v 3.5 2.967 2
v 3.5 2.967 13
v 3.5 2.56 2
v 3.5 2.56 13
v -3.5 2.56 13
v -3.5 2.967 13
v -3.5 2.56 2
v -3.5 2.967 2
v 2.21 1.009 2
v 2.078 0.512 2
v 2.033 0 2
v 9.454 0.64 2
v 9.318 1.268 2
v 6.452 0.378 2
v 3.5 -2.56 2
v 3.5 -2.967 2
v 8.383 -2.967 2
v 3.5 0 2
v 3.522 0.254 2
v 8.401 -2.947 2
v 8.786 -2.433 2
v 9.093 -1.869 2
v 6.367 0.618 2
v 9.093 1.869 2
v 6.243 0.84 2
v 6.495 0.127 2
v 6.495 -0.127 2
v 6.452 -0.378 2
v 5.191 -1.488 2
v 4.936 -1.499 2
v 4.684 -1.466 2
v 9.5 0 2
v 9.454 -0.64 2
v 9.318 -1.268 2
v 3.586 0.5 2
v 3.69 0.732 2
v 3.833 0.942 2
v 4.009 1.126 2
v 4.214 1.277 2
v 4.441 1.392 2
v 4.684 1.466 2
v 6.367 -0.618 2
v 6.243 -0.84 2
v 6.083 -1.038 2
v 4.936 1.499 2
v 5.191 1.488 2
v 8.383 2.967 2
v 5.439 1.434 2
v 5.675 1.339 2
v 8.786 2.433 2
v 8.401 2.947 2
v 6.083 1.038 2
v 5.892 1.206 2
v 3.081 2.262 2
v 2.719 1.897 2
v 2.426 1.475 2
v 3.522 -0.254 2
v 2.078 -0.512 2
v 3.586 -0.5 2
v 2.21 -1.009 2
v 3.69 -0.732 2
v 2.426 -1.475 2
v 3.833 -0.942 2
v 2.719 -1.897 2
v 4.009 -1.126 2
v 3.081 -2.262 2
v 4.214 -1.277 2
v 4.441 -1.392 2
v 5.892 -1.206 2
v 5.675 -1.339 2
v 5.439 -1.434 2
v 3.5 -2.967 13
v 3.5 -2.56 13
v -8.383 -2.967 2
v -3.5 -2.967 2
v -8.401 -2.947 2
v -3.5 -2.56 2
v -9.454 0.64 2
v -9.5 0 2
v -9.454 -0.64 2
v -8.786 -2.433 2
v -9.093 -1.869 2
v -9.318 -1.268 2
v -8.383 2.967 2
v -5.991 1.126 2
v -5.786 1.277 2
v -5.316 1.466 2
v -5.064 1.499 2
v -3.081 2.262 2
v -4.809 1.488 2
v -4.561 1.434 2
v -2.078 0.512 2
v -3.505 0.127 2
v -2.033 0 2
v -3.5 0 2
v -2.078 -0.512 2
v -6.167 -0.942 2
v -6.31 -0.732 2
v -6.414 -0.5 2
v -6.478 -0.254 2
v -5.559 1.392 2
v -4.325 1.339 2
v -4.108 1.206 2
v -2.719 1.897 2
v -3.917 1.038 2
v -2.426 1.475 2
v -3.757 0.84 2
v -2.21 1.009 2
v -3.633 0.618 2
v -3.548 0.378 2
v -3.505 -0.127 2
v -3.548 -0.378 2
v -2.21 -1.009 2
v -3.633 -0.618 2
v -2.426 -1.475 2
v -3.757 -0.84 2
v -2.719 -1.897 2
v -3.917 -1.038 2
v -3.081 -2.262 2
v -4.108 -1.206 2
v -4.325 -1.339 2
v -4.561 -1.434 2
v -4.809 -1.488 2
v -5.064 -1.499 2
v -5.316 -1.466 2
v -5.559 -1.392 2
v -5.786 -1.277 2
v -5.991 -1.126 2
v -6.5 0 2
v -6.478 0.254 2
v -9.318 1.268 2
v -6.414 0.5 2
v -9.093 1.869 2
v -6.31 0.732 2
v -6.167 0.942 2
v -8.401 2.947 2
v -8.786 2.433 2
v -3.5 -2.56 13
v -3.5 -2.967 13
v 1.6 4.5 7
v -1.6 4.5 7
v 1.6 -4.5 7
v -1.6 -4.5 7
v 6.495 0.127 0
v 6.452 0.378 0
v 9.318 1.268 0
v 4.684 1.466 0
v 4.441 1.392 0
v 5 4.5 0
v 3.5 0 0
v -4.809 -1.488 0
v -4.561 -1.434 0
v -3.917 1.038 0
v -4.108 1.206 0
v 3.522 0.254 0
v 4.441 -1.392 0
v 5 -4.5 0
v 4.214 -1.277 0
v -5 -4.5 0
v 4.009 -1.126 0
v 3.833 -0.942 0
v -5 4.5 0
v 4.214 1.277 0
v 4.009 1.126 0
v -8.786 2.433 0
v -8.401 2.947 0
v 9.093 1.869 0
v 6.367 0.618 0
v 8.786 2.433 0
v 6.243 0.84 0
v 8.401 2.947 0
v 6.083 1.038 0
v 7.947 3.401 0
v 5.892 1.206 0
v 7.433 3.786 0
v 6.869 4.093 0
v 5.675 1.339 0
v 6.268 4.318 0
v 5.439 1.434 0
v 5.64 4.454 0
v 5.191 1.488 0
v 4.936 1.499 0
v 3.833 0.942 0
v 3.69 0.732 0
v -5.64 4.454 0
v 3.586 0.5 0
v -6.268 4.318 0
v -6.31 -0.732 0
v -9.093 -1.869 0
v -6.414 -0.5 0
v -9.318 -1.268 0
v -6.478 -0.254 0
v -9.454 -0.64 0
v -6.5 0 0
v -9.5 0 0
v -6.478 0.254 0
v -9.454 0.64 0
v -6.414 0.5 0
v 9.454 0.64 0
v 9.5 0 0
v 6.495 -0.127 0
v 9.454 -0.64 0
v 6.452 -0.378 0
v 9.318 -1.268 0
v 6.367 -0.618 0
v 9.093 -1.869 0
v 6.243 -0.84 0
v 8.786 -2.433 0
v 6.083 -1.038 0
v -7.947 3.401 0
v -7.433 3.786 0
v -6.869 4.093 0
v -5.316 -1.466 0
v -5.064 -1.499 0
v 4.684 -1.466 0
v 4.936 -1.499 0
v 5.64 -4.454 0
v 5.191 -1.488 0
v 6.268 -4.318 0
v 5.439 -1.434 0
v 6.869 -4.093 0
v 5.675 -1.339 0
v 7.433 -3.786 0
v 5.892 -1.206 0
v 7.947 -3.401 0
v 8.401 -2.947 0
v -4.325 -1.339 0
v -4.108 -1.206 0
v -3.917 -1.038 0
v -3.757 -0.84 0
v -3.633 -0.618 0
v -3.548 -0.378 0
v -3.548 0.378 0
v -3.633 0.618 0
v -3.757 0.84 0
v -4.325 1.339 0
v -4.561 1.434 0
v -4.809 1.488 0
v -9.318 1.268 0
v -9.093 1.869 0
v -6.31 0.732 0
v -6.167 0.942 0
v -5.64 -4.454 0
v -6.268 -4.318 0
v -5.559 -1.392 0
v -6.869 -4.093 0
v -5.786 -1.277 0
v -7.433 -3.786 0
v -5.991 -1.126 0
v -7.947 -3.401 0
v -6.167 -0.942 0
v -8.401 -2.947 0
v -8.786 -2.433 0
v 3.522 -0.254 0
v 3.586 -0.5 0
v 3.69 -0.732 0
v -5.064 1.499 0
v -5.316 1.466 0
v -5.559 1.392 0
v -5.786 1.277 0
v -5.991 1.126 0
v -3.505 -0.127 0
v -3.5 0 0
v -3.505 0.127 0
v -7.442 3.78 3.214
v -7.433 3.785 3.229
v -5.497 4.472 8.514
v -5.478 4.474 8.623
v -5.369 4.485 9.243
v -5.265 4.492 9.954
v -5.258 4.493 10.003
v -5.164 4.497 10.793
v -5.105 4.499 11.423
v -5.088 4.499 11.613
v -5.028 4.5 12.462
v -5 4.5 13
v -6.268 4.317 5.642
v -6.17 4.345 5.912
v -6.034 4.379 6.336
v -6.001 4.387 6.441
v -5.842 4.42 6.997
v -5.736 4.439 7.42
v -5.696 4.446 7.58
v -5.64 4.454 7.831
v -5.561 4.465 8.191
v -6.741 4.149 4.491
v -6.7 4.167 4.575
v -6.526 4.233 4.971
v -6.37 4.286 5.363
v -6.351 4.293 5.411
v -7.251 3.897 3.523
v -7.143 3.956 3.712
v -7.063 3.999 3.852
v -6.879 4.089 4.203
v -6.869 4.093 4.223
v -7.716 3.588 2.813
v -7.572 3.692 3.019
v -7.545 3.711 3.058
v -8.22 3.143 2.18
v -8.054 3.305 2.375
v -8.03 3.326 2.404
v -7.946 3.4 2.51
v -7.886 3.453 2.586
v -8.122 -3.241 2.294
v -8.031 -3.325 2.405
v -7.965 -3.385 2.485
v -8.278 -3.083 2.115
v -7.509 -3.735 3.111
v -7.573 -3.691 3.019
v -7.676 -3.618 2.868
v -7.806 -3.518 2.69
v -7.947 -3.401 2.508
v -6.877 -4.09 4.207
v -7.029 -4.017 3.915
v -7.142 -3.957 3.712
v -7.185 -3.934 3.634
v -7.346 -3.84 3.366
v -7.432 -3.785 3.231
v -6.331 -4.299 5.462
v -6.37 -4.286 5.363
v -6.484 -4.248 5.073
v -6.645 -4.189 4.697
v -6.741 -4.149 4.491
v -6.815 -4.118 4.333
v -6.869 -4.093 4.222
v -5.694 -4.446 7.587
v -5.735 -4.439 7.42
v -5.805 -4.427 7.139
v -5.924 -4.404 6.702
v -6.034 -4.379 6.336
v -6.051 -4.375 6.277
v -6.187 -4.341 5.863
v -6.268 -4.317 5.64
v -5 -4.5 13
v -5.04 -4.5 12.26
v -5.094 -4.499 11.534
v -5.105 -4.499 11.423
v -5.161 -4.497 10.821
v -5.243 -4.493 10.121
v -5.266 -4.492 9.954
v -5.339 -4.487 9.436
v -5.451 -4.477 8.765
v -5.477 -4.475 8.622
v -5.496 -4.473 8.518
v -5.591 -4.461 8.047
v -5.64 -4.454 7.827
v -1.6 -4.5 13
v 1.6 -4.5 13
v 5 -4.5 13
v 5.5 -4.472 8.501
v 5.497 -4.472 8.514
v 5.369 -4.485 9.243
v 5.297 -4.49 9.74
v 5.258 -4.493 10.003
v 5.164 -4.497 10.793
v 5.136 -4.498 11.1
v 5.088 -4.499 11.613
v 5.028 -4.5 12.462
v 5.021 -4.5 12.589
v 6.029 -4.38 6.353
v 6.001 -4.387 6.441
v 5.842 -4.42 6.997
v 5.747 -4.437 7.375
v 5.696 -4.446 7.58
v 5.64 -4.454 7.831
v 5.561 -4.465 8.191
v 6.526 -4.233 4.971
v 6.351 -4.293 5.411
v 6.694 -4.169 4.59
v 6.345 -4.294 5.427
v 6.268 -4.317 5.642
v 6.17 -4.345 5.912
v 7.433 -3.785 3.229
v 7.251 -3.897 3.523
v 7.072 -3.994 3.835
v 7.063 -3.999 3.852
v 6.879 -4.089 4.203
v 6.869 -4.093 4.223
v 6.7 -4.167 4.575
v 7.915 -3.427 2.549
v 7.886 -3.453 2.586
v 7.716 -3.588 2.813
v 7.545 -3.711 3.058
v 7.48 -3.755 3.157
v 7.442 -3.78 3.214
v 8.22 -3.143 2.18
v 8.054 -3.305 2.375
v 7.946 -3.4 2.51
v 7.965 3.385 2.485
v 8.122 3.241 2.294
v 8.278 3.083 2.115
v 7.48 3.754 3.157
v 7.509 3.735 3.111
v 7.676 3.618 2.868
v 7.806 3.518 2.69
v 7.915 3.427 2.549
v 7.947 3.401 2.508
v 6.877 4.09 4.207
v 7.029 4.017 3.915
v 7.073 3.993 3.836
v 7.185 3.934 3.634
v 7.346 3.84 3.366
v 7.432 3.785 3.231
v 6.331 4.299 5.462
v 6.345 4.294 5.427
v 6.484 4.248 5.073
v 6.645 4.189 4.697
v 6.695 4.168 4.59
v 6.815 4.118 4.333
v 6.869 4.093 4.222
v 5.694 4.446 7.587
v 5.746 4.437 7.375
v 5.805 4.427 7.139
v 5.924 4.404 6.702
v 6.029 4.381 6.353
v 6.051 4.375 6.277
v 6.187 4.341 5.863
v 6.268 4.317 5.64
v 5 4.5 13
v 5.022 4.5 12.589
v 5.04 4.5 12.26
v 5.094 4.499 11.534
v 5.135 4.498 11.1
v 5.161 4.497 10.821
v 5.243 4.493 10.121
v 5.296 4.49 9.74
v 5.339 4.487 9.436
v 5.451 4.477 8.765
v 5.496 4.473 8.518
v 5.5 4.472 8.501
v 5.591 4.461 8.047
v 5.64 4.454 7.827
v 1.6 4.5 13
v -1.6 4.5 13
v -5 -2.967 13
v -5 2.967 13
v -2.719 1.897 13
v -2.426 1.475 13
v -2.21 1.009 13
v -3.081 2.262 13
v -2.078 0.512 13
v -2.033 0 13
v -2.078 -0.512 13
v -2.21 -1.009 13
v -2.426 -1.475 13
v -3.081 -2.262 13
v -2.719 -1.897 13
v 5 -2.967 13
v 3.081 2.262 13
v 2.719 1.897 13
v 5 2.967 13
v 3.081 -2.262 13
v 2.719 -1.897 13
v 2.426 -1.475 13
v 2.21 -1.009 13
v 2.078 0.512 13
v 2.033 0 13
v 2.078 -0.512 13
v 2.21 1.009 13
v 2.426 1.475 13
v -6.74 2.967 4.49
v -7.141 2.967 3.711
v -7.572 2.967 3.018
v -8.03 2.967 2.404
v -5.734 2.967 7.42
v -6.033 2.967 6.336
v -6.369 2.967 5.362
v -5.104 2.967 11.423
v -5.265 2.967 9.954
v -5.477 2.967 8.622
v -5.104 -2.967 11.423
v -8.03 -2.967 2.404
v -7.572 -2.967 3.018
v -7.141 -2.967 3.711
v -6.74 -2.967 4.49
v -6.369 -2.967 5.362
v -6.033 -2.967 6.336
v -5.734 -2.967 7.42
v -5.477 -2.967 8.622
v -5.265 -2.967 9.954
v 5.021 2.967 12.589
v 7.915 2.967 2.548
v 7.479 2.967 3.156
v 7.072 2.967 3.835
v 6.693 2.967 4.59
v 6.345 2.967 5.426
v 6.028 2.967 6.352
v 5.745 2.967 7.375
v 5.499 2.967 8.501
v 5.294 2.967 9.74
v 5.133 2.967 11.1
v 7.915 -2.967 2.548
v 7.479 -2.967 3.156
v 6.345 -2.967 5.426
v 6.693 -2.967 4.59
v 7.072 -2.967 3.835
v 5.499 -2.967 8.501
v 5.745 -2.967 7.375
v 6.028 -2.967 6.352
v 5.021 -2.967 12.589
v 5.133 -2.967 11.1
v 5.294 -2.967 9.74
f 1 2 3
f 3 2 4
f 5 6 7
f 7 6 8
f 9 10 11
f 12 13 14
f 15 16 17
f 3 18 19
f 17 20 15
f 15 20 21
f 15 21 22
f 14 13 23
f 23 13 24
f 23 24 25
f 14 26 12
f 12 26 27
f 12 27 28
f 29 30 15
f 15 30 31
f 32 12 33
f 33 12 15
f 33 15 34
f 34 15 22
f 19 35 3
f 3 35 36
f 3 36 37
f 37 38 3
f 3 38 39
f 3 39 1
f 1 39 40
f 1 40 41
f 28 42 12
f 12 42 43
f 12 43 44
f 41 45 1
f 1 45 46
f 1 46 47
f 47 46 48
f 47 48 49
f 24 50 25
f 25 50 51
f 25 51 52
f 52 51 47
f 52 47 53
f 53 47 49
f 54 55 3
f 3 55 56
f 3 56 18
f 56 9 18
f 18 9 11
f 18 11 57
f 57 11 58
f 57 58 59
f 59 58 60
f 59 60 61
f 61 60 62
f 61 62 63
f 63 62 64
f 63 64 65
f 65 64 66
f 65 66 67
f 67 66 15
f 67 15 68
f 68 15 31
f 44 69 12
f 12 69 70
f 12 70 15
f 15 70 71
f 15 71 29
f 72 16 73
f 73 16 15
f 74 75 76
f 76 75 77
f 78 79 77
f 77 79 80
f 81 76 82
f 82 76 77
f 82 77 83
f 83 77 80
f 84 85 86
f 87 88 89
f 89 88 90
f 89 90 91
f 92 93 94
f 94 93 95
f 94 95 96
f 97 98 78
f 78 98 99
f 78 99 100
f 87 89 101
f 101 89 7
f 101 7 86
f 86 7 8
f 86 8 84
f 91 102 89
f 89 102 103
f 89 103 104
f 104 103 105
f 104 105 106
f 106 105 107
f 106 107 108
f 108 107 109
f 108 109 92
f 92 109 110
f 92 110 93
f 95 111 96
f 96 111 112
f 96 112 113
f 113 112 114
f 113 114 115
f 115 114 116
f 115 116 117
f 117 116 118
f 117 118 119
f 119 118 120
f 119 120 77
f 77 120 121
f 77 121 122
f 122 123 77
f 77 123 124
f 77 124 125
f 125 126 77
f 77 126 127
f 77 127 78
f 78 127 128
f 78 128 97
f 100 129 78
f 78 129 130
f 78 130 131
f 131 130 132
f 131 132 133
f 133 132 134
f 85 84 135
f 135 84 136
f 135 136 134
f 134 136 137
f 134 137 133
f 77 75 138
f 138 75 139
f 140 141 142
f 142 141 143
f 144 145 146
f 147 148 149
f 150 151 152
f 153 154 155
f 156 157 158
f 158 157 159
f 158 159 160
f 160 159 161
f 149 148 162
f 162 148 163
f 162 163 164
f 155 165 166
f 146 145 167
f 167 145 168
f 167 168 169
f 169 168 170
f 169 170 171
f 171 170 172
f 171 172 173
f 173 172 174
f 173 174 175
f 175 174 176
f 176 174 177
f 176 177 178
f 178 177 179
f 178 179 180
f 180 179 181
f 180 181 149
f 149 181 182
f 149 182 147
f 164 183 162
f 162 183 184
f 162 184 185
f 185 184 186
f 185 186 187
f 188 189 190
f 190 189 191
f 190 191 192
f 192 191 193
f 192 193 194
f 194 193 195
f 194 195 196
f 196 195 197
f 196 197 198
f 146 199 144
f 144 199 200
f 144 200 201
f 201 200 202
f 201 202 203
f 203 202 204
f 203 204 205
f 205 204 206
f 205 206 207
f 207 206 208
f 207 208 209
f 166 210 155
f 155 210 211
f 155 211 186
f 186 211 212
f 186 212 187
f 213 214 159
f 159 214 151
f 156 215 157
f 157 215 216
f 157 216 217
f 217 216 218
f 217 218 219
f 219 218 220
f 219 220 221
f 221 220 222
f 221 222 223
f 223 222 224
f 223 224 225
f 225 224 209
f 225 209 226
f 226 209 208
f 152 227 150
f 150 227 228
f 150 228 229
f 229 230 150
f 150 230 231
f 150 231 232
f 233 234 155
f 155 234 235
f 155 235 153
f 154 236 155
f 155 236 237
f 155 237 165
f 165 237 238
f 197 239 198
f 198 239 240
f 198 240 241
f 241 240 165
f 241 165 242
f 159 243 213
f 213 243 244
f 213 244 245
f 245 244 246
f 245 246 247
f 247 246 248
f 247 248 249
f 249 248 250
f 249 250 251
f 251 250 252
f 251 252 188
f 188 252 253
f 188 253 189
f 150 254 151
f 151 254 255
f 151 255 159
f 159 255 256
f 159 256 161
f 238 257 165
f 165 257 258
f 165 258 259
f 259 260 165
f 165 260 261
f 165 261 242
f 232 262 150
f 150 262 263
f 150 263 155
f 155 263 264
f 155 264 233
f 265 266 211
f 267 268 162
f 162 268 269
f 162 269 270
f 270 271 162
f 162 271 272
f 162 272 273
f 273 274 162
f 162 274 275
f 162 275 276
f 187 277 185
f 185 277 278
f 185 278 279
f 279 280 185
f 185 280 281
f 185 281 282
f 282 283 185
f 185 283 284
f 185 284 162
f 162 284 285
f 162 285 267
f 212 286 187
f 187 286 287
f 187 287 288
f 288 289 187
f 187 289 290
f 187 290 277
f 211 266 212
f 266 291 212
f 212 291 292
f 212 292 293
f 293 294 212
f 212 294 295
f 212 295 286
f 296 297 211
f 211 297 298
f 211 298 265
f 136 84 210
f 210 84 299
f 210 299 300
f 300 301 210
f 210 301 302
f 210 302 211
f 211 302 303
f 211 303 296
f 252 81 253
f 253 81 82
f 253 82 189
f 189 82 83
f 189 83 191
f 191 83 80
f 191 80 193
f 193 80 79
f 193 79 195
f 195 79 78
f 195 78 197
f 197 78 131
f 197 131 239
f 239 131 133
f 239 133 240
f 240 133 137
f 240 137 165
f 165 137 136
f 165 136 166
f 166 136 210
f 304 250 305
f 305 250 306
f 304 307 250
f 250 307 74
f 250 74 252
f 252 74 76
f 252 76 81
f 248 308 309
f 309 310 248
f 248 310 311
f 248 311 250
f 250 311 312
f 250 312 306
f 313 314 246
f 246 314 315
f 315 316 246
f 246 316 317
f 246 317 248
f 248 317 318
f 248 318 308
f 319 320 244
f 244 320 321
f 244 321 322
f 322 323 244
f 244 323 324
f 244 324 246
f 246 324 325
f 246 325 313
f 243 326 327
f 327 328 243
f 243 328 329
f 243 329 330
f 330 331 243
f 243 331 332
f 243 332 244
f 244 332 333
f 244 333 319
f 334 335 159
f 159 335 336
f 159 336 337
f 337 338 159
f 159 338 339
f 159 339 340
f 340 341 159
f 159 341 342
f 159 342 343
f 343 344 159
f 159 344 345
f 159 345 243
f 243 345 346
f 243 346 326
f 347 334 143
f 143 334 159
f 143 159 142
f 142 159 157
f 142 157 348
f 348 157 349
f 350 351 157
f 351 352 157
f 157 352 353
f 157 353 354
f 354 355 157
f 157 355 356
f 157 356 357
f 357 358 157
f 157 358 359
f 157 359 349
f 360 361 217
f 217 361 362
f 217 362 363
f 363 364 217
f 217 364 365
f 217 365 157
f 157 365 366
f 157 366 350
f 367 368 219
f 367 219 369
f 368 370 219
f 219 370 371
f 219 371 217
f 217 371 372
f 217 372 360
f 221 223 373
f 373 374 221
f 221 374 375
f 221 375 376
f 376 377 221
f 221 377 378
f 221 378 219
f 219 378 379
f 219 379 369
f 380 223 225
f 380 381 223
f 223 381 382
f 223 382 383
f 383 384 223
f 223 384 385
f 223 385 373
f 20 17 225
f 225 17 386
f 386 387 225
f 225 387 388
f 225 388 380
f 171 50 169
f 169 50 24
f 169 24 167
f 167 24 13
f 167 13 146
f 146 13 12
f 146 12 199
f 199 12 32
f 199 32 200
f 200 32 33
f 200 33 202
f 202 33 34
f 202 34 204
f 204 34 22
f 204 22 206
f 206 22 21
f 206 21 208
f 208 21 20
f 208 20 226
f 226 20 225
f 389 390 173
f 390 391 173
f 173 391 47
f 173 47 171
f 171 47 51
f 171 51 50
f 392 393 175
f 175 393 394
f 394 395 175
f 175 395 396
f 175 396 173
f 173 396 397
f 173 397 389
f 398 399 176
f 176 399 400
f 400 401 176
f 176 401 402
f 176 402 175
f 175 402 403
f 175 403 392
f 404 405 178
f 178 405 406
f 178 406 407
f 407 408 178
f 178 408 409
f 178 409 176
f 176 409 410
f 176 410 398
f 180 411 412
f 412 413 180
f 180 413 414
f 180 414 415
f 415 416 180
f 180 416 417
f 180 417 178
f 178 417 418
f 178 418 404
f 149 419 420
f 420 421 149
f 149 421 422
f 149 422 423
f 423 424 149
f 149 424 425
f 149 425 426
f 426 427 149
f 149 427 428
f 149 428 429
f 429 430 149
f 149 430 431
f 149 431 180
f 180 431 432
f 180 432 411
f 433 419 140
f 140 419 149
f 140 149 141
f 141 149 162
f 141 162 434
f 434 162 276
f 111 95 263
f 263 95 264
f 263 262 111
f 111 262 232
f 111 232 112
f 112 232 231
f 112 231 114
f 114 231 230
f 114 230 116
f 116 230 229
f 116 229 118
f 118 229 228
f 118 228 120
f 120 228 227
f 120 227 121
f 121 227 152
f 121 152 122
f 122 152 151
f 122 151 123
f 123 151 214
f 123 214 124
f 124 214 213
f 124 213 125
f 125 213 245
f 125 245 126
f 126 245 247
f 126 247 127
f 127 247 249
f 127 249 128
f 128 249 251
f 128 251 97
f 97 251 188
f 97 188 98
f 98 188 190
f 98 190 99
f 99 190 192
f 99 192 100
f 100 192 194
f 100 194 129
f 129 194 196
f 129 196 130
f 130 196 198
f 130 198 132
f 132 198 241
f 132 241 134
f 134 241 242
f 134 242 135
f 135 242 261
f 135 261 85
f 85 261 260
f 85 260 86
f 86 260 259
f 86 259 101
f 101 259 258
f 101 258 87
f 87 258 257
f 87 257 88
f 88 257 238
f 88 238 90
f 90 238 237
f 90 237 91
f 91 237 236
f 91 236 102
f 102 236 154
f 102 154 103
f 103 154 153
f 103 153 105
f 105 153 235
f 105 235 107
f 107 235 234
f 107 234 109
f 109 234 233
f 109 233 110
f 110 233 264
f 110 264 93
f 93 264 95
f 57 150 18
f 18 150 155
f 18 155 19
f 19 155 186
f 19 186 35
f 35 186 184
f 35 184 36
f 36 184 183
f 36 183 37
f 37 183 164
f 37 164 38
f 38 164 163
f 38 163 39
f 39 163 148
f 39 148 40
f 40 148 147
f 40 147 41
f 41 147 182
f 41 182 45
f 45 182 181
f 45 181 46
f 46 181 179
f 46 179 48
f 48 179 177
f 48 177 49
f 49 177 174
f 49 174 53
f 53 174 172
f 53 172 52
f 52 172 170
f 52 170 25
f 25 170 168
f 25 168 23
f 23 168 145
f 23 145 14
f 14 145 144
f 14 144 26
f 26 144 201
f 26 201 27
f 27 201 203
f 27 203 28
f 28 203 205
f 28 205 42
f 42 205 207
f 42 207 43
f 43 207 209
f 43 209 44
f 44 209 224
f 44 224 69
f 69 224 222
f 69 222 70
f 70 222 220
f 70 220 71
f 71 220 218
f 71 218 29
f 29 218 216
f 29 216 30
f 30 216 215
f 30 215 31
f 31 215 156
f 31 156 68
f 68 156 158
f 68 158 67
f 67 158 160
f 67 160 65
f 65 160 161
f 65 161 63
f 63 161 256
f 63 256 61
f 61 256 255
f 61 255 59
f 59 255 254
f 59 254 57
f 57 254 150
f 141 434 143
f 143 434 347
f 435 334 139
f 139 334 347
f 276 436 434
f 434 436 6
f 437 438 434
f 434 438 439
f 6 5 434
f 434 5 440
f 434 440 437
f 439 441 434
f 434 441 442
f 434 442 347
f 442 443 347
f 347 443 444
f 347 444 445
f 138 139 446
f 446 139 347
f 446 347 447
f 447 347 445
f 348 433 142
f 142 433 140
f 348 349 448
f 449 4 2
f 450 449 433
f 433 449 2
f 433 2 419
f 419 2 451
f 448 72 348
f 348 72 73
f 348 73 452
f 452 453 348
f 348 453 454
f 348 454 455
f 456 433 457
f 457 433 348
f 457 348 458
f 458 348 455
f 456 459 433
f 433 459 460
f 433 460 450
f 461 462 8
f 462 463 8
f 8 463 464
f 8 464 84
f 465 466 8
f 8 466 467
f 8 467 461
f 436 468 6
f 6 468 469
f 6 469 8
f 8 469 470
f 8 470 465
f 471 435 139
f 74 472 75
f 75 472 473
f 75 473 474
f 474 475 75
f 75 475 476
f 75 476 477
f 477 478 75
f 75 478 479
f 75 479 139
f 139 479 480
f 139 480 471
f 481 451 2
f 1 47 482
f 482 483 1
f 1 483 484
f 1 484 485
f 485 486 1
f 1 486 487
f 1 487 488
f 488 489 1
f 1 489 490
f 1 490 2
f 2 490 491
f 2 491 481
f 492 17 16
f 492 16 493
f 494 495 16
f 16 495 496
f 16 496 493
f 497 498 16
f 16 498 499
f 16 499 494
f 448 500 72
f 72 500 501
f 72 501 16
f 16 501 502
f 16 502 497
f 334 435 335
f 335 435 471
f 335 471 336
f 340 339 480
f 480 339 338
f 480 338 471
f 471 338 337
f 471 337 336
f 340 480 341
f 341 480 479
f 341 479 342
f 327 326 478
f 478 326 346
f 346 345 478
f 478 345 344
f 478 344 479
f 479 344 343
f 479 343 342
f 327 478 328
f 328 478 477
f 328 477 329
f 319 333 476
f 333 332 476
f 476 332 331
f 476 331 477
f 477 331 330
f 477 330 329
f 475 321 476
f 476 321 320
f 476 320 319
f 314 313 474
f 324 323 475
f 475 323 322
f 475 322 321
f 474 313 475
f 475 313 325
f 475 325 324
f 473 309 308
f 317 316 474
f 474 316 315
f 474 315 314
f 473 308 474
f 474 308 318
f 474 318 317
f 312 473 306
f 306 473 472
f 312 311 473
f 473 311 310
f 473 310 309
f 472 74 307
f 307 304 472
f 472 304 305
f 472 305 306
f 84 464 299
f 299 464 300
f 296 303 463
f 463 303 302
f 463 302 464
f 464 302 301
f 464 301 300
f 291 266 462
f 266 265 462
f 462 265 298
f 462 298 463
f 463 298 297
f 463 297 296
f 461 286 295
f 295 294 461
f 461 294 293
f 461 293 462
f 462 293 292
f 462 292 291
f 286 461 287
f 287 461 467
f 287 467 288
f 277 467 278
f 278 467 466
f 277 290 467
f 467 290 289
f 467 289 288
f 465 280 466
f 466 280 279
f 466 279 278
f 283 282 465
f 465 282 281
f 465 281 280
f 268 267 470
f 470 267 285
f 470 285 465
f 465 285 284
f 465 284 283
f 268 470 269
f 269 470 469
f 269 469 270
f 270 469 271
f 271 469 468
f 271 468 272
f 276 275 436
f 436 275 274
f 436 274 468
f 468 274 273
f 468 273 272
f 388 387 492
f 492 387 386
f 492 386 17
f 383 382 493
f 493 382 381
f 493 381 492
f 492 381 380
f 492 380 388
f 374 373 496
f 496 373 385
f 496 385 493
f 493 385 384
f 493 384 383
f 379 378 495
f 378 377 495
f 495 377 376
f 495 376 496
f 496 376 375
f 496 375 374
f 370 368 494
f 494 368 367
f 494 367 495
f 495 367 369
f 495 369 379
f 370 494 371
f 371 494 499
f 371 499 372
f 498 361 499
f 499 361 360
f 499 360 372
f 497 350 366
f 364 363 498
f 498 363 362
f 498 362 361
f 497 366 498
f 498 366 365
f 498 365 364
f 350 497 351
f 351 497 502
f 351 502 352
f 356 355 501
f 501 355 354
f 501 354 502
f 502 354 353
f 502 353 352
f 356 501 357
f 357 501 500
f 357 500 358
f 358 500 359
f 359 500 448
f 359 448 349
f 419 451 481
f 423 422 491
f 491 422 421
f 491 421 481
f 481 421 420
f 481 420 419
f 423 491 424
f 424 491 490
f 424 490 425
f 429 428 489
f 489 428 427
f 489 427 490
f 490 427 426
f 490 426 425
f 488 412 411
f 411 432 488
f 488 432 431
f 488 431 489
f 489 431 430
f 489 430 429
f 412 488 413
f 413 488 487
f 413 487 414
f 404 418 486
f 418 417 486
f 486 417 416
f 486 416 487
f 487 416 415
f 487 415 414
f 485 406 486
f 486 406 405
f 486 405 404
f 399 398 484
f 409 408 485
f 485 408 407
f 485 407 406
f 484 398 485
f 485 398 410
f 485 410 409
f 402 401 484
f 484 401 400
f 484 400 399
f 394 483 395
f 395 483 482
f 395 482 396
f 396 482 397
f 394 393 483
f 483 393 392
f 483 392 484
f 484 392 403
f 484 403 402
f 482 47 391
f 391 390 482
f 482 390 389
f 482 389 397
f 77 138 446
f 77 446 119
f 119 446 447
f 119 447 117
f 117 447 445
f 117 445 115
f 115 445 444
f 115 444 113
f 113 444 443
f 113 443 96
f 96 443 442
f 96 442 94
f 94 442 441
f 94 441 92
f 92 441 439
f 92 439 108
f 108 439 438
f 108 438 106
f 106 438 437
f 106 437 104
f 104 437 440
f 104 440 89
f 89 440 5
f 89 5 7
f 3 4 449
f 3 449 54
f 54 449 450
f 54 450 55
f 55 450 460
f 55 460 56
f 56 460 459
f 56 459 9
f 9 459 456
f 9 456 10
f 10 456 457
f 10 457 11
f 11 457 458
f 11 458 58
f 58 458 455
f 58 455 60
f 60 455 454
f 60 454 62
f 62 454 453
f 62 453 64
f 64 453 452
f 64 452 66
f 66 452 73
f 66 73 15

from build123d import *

# Parameters (mm, degrees)
SKETCH1_R               = 1.5
BOSS_EXTRUDE1_DEPTH     = 2
SKETCH2_W               = 7
SKETCH2_H               = 9
BOSS_EXTRUDE2_DEPTH     = 5
SKETCH2_3_W             = 1.9
SKETCH2_3_H             = 9
BOSS_EXTRUDE3_DEPTH     = 11
BOSS_EXTRUDE4_DEPTH     = 11
CUT_EXTRUDE1_DEPTH      = 17.718253497
CUT_EXTRUDE1_DEPTH_BACK = 17.718253497
SKETCH5_R               = 2.966905055
CUT_EXTRUDE2_DEPTH      = 11


with BuildPart() as part:
    # Sketch1 → Boss-Extrude1 (new body)
    with BuildSketch(Plane.XY):
        with BuildLine():
            Line((-5, 4.5), (5, 4.5))
            ThreePointArc((5, 4.5), (9.5, 0), (5, -4.5))
            Line((5, -4.5), (-5, -4.5))
            ThreePointArc((-5, -4.5), (-9.5, 0), (-5, 4.5))
        make_face()
        with Locations((-5, 0)):
            Circle(SKETCH1_R, mode=Mode.SUBTRACT)
        with Locations(Location((5, 0, 0), (0, 0, 180))):
            Circle(SKETCH1_R, mode=Mode.SUBTRACT)
    extrude(amount=BOSS_EXTRUDE1_DEPTH)

    # Sketch2 → Boss-Extrude2 (add)
    with BuildSketch(Plane.XY.offset(2)):
        Rectangle(SKETCH2_W, SKETCH2_H)
    extrude(amount=BOSS_EXTRUDE2_DEPTH)

    # Sketch2<3> → Boss-Extrude3 (add)
    with BuildSketch(Plane.XY.offset(2)):
        with Locations((-2.55, 0)):
            Rectangle(SKETCH2_3_W, SKETCH2_3_H)
        with Locations((2.55, 0)):
            Rectangle(SKETCH2_3_W, SKETCH2_3_H)
    extrude(amount=BOSS_EXTRUDE3_DEPTH)

    # Sketch3 → Boss-Extrude4 (add)
    with BuildSketch(Plane.XY.offset(2)):
        with BuildLine():
            Line((-3.5, 4.5), (-5, 4.5))
            ThreePointArc((-5, 4.5), (-6.85727317, 4.098845737), (-8.38341165, 2.966905055))
            Line((-8.38341165, 2.966905055), (-3.5, 2.966905055))
            Line((-3.5, 2.966905055), (-3.5, 4.5))
        make_face()
        with BuildLine():
            Line((-3.5, -2.966905055), (-8.38341165, -2.966905055))
            ThreePointArc((-8.38341165, -2.966905055), (-6.85727317, -4.098845737), (-5, -4.5))
            Line((-5, -4.5), (-3.5, -4.5))
            Line((-3.5, -4.5), (-3.5, -2.966905055))
        make_face()
        with BuildLine():
            Line((3.5, -4.5), (5, -4.5))
            ThreePointArc((5, -4.5), (6.85727317, -4.098845737), (8.38341165, -2.966905055))
            Line((8.38341165, -2.966905055), (3.5, -2.966905055))
            Line((3.5, -2.966905055), (3.5, -4.5))
        make_face()
        with BuildLine():
            Line((3.5, 2.966905055), (8.38341165, 2.966905055))
            ThreePointArc((8.38341165, 2.966905055), (6.85727317, 4.098845737), (5, 4.5))
            Line((5, 4.5), (3.5, 4.5))
            Line((3.5, 4.5), (3.5, 2.966905055))
        make_face()
    extrude(amount=BOSS_EXTRUDE4_DEPTH)

    # Sketch4 → Cut-Extrude1 (cut, two sides: drawn at the far end of the back side and taken through both)
    with BuildSketch(Plane(origin=(0, 0, 0), x_dir=(1, 0, 0), z_dir=(0, 1, 0)).offset(-CUT_EXTRUDE1_DEPTH_BACK)):
        with BuildLine():
            Line((-8.38341165, -2), (-12.296417953, -13.182835844))
            Line((-12.296417953, -13.182835844), (-6.078905494, -14.351094555))
            Line((-6.078905494, -14.351094555), (-5, -13))
            add(Edge.make_bspline(
                [(-8.38341165, -2), (-5.354296854, -5.236477868), (-5, -13)],
                knots=[0, 0, 0, 1, 1, 1], degree=2))
        make_face()
        with BuildLine():
            Line((5, -13), (8.38341165, -14.707512466))
            Line((8.38341165, -14.707512466), (10.514328395, -13.974875648))
            Line((10.514328395, -13.974875648), (8.38341165, -2))
            add(Edge.make_bspline(
                [(8.38341165, -2), (5.354296854, -5.236477868), (5, -13)],
                knots=[0, 0, 0, 1, 1, 1], degree=2))
        make_face()
    extrude(amount=CUT_EXTRUDE1_DEPTH + CUT_EXTRUDE1_DEPTH_BACK, mode=Mode.SUBTRACT)

    # Sketch5 → Cut-Extrude2 (cut)
    with BuildSketch(Plane.XY.offset(13)):
        with Locations((-5, 0)):
            Circle(SKETCH5_R)
        with Locations((5, 0)):
            Circle(SKETCH5_R)
    extrude(amount=-CUT_EXTRUDE2_DEPTH, mode=Mode.SUBTRACT)


solid = part.part
